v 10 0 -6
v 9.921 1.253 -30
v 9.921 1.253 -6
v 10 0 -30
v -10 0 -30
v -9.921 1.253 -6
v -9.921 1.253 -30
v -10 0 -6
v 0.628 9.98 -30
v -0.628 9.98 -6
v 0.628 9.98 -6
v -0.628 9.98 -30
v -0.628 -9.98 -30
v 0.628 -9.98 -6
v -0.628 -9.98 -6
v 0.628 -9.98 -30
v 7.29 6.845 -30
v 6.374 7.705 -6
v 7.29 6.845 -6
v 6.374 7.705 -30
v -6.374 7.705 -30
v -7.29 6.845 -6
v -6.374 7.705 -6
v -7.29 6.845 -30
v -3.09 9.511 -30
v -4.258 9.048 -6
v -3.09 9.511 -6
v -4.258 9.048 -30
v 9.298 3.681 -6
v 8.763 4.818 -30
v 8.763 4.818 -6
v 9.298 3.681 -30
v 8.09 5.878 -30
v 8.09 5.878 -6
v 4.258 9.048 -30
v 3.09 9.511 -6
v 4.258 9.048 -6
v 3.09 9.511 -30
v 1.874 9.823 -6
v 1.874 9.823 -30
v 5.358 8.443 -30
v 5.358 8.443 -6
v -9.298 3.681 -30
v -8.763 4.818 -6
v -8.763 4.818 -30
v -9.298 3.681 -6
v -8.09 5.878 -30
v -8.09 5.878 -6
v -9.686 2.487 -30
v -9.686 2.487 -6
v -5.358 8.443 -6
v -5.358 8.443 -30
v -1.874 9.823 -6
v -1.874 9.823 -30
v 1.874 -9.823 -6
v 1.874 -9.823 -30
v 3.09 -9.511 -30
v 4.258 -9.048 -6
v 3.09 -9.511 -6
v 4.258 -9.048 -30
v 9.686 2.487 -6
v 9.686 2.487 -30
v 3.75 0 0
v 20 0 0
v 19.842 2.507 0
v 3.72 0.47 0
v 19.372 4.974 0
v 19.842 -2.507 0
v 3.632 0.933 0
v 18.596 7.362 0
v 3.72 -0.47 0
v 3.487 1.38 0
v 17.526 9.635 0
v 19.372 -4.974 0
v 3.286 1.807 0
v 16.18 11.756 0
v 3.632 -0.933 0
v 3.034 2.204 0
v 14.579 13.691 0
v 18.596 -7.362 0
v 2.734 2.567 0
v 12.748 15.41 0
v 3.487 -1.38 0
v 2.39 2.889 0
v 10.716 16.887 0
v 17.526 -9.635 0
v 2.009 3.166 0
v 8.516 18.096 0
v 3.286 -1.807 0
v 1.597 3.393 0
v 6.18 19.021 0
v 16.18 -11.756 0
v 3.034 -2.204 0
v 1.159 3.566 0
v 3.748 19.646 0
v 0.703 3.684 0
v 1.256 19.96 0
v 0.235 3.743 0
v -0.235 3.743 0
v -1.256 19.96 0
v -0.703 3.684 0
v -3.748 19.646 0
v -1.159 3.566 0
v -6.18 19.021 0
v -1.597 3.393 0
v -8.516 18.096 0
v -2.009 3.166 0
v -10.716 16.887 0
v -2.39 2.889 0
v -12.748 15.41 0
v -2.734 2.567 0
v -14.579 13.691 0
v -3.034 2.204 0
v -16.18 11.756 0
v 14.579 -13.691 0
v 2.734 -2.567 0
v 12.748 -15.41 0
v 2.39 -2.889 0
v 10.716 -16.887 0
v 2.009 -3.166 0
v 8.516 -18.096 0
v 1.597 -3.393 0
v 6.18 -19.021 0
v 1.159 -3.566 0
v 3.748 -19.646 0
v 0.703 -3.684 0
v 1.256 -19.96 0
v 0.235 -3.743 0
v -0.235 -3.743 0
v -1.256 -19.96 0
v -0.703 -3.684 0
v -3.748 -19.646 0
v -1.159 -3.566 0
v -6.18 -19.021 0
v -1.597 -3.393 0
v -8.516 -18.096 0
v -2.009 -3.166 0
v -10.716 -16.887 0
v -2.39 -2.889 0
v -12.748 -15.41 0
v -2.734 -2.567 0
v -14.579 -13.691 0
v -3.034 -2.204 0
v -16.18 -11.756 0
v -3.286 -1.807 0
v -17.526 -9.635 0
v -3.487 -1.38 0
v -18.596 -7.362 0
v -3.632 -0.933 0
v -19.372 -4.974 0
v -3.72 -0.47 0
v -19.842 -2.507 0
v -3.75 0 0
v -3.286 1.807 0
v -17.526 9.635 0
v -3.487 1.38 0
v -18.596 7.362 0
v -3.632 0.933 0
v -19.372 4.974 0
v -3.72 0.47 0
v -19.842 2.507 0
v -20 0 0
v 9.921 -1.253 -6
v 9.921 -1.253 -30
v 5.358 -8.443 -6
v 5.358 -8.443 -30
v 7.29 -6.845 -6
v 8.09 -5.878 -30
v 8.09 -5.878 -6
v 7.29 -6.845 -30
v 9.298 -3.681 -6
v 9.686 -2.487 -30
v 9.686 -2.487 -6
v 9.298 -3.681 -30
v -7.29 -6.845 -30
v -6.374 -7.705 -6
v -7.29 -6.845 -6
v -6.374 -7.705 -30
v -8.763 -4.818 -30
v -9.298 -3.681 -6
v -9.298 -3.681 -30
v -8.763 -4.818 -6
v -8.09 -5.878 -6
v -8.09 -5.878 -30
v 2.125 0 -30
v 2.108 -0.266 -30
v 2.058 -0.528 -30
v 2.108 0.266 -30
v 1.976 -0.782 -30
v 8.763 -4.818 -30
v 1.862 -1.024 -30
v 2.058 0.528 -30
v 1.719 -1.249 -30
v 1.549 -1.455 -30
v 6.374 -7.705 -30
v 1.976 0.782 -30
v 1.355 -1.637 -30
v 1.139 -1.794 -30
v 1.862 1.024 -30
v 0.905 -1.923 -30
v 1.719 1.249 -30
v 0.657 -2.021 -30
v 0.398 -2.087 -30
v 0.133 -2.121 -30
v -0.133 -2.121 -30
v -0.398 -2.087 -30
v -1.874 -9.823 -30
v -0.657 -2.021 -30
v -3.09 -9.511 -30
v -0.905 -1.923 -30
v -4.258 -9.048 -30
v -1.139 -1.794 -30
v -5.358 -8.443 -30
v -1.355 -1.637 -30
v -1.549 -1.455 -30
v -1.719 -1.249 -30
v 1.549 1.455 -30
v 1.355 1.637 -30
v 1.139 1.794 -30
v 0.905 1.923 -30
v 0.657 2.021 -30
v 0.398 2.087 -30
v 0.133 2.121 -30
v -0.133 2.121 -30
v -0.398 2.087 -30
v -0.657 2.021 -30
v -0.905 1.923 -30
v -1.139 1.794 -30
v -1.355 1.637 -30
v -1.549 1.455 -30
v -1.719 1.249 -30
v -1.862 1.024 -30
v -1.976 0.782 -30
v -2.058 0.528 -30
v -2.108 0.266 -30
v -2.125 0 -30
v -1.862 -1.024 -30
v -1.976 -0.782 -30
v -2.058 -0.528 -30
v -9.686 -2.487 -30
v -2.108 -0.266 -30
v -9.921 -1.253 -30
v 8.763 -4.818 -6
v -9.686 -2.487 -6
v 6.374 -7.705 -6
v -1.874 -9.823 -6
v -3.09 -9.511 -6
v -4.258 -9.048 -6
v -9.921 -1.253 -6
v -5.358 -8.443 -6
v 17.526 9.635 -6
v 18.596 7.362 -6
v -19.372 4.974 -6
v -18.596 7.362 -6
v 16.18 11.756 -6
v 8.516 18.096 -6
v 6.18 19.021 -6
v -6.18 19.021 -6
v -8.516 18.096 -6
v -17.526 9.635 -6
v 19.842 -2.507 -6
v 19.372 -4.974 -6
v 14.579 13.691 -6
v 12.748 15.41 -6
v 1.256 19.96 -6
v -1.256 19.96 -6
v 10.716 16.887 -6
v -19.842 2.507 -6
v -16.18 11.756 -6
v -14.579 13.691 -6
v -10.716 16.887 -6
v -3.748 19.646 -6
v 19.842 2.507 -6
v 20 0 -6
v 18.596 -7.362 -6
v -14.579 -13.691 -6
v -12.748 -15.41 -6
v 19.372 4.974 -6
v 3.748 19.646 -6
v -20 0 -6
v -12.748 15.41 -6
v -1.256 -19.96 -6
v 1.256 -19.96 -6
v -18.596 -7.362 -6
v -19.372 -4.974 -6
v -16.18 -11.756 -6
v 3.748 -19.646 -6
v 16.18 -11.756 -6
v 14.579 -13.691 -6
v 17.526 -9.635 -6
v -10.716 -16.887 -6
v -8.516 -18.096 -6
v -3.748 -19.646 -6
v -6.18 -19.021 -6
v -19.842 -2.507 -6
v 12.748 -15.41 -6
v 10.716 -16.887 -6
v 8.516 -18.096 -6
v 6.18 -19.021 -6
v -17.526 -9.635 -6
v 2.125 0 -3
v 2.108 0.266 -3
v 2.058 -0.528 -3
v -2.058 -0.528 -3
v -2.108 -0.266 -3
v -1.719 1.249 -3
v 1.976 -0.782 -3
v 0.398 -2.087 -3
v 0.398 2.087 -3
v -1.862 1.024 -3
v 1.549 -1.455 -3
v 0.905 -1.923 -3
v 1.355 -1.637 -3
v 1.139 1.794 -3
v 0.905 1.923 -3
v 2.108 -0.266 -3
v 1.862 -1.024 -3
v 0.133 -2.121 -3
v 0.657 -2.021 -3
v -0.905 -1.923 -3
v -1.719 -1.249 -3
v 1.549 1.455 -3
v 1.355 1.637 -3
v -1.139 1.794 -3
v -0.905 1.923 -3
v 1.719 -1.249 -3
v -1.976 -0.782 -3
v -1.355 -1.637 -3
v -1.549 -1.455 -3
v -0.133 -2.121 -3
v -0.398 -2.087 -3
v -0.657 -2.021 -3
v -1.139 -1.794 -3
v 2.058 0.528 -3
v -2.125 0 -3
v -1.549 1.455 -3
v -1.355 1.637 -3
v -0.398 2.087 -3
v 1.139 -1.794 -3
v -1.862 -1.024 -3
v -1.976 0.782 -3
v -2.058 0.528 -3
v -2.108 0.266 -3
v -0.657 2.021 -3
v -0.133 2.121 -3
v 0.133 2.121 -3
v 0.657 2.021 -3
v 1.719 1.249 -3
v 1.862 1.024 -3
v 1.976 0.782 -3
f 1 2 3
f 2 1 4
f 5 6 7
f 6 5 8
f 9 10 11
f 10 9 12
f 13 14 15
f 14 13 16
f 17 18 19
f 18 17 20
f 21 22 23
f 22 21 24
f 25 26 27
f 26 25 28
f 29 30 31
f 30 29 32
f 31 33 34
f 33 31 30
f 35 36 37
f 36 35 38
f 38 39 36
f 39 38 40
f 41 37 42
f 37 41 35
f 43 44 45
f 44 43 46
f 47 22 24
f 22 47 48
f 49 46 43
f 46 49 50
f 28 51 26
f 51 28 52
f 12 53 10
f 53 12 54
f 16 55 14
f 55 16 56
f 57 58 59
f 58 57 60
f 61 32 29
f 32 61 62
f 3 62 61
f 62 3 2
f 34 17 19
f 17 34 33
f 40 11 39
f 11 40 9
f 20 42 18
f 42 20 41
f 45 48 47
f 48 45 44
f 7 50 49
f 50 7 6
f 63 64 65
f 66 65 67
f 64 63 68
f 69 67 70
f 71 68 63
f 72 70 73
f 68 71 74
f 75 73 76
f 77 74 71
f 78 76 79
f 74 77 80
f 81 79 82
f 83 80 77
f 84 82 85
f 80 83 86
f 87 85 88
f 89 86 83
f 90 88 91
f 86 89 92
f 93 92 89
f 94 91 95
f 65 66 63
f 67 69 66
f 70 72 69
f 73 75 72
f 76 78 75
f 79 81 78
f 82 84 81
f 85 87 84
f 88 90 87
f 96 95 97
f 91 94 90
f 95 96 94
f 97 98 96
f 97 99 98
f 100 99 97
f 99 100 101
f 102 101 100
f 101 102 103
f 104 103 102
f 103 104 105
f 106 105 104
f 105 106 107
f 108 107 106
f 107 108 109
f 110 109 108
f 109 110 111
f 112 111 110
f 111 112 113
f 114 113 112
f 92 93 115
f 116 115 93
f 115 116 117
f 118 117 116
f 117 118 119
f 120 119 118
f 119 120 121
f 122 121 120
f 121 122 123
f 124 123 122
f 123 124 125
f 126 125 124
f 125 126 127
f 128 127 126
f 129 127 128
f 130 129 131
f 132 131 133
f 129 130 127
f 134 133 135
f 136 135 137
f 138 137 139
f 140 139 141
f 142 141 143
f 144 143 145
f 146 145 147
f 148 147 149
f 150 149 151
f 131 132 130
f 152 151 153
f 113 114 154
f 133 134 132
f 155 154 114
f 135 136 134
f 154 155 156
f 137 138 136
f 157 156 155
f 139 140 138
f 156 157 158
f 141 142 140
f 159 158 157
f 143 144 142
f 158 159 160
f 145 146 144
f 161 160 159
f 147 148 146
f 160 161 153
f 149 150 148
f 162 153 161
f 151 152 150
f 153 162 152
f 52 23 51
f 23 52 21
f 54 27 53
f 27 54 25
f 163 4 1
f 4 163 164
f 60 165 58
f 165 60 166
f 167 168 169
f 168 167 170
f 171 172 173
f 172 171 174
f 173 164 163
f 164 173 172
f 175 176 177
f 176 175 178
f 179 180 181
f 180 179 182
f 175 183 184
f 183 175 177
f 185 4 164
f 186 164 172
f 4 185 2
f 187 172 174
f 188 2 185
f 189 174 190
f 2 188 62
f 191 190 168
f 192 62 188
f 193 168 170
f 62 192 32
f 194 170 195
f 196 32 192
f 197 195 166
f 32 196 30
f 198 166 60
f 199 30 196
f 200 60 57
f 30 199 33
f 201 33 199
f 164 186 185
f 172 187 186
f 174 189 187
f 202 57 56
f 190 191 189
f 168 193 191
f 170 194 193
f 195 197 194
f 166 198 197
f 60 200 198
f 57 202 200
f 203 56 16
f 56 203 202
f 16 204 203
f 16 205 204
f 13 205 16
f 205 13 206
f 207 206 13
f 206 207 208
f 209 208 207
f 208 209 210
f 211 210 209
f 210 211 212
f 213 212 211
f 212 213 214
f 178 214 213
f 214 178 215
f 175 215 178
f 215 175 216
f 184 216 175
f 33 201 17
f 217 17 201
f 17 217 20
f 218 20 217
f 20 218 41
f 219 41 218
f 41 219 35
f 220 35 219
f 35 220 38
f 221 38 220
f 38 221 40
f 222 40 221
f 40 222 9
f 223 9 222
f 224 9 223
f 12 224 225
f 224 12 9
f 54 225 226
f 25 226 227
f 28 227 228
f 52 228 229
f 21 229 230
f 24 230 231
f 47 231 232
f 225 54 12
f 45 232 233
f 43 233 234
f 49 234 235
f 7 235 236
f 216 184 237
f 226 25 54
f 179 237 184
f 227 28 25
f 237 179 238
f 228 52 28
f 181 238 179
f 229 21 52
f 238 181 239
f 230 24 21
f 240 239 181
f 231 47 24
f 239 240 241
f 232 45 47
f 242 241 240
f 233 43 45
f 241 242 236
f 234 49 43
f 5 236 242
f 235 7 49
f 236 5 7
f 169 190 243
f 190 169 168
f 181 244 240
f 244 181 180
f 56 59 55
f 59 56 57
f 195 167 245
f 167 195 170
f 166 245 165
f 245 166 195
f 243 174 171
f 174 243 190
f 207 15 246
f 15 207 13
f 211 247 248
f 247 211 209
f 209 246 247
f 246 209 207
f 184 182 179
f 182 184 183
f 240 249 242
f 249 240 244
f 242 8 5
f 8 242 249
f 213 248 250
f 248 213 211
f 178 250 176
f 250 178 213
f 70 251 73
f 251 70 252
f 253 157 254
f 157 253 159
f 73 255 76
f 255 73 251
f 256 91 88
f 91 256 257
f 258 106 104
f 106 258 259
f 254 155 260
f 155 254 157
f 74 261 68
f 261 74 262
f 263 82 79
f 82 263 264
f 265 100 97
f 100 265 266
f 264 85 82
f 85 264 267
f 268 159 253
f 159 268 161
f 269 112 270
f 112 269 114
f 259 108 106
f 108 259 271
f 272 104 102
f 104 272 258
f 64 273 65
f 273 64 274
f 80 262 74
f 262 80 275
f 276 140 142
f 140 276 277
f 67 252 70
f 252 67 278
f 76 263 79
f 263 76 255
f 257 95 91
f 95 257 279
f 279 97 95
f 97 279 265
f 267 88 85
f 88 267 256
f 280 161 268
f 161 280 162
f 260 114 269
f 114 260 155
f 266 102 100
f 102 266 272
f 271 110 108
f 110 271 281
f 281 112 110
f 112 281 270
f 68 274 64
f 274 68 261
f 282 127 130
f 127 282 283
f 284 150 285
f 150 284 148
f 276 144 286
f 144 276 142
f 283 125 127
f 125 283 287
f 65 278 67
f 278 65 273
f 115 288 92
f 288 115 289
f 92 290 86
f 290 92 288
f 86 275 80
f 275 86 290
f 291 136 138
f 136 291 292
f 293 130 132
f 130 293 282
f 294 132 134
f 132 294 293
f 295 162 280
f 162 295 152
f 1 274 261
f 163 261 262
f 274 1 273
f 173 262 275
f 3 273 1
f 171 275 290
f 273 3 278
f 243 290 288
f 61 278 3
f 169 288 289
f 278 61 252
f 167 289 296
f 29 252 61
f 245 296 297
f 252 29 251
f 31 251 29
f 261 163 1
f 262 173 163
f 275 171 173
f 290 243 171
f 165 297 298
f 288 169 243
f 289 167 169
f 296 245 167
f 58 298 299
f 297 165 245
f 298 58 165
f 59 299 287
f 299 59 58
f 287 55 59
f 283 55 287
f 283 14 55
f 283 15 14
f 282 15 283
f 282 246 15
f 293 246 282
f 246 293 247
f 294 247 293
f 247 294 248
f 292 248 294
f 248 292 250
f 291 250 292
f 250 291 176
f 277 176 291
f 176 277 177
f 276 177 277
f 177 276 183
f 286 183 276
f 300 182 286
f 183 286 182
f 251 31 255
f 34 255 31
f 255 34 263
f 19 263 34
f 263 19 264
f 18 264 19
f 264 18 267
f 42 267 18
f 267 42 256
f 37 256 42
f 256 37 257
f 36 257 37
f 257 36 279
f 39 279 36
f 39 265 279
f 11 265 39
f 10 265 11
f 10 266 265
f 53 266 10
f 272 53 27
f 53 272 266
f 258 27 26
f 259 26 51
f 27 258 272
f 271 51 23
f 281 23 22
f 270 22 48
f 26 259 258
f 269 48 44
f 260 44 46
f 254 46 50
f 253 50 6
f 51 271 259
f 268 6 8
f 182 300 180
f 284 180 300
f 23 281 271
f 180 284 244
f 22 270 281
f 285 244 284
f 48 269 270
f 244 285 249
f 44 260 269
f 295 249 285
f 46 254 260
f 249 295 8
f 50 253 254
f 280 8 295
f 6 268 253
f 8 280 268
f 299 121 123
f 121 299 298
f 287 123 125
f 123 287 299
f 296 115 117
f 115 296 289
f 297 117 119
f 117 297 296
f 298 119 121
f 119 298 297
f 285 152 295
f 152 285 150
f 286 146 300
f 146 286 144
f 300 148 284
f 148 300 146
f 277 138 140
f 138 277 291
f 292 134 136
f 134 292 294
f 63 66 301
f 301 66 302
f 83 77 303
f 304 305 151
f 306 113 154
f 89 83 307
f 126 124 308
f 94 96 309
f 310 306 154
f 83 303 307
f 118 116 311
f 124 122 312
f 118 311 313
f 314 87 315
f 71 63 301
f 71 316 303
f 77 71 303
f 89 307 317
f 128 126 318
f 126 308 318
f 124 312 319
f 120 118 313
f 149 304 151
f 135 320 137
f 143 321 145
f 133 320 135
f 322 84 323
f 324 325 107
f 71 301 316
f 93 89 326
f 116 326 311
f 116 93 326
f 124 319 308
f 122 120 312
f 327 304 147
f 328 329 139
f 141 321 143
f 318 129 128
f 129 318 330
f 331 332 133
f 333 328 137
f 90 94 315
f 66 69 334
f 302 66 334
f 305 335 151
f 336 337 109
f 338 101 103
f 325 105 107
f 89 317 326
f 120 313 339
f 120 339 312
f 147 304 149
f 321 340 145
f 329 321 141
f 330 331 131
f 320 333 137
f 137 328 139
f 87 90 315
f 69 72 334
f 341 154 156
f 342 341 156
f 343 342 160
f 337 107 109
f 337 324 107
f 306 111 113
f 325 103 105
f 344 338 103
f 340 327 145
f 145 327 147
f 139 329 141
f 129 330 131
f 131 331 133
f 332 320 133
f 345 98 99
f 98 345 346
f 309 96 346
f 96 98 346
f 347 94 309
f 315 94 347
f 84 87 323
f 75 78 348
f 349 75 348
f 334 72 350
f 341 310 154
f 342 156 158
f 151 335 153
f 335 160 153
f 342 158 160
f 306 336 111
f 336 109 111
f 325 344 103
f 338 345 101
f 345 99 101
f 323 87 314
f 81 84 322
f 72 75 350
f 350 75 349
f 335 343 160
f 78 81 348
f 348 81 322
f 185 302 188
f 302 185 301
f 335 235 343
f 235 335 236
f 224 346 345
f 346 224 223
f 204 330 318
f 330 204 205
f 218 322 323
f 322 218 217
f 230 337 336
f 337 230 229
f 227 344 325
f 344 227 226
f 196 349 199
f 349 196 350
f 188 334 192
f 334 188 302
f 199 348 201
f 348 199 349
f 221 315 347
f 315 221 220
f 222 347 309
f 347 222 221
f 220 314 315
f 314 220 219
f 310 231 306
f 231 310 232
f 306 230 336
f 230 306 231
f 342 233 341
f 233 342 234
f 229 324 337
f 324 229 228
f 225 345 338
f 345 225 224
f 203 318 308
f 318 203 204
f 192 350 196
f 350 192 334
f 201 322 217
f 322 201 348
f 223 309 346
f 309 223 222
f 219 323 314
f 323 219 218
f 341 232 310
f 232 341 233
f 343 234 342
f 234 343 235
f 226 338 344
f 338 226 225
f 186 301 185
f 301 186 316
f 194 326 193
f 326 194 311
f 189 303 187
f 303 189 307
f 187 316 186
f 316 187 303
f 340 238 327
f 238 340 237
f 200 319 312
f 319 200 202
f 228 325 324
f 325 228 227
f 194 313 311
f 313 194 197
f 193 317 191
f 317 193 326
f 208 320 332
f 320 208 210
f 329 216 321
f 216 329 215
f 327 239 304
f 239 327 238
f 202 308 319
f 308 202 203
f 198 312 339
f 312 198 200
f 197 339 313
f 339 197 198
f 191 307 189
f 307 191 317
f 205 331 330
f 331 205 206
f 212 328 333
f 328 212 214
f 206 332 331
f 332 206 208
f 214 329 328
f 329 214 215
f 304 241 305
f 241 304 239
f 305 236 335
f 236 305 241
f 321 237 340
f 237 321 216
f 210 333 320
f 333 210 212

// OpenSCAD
$fn = 50;


difference() {
	union() {
		translate(v = [0, 0, -30.0000000000]) {
			cylinder(h = 30, r = 10.0000000000);
		}
		translate(v = [0, 0, -6.0000000000]) {
			cylinder(h = 6, r = 20.0000000000);
		}
	}
	union() {
		translate(v = [0, 0, 0]) {
			rotate(a = [0, 0, 0]) {
				difference() {
					union() {
						#translate(v = [0, 0, -30.0000000000]) {
							cylinder(h = 30, r = 2.0000000000);
						}
						#translate(v = [0, 0, -3]) {
							cylinder(h = 3, r1 = 2.1250000000, r2 = 3.7500000000);
						}
						#translate(v = [0, 0, -30.0000000000]) {
							cylinder(h = 30, r = 2.1250000000);
						}
						#translate(v = [0, 0, -30.0000000000]) {
							cylinder(h = 30, r = 2.0000000000);
						}
					}
					union();
				}
			}
		}
	}
}
